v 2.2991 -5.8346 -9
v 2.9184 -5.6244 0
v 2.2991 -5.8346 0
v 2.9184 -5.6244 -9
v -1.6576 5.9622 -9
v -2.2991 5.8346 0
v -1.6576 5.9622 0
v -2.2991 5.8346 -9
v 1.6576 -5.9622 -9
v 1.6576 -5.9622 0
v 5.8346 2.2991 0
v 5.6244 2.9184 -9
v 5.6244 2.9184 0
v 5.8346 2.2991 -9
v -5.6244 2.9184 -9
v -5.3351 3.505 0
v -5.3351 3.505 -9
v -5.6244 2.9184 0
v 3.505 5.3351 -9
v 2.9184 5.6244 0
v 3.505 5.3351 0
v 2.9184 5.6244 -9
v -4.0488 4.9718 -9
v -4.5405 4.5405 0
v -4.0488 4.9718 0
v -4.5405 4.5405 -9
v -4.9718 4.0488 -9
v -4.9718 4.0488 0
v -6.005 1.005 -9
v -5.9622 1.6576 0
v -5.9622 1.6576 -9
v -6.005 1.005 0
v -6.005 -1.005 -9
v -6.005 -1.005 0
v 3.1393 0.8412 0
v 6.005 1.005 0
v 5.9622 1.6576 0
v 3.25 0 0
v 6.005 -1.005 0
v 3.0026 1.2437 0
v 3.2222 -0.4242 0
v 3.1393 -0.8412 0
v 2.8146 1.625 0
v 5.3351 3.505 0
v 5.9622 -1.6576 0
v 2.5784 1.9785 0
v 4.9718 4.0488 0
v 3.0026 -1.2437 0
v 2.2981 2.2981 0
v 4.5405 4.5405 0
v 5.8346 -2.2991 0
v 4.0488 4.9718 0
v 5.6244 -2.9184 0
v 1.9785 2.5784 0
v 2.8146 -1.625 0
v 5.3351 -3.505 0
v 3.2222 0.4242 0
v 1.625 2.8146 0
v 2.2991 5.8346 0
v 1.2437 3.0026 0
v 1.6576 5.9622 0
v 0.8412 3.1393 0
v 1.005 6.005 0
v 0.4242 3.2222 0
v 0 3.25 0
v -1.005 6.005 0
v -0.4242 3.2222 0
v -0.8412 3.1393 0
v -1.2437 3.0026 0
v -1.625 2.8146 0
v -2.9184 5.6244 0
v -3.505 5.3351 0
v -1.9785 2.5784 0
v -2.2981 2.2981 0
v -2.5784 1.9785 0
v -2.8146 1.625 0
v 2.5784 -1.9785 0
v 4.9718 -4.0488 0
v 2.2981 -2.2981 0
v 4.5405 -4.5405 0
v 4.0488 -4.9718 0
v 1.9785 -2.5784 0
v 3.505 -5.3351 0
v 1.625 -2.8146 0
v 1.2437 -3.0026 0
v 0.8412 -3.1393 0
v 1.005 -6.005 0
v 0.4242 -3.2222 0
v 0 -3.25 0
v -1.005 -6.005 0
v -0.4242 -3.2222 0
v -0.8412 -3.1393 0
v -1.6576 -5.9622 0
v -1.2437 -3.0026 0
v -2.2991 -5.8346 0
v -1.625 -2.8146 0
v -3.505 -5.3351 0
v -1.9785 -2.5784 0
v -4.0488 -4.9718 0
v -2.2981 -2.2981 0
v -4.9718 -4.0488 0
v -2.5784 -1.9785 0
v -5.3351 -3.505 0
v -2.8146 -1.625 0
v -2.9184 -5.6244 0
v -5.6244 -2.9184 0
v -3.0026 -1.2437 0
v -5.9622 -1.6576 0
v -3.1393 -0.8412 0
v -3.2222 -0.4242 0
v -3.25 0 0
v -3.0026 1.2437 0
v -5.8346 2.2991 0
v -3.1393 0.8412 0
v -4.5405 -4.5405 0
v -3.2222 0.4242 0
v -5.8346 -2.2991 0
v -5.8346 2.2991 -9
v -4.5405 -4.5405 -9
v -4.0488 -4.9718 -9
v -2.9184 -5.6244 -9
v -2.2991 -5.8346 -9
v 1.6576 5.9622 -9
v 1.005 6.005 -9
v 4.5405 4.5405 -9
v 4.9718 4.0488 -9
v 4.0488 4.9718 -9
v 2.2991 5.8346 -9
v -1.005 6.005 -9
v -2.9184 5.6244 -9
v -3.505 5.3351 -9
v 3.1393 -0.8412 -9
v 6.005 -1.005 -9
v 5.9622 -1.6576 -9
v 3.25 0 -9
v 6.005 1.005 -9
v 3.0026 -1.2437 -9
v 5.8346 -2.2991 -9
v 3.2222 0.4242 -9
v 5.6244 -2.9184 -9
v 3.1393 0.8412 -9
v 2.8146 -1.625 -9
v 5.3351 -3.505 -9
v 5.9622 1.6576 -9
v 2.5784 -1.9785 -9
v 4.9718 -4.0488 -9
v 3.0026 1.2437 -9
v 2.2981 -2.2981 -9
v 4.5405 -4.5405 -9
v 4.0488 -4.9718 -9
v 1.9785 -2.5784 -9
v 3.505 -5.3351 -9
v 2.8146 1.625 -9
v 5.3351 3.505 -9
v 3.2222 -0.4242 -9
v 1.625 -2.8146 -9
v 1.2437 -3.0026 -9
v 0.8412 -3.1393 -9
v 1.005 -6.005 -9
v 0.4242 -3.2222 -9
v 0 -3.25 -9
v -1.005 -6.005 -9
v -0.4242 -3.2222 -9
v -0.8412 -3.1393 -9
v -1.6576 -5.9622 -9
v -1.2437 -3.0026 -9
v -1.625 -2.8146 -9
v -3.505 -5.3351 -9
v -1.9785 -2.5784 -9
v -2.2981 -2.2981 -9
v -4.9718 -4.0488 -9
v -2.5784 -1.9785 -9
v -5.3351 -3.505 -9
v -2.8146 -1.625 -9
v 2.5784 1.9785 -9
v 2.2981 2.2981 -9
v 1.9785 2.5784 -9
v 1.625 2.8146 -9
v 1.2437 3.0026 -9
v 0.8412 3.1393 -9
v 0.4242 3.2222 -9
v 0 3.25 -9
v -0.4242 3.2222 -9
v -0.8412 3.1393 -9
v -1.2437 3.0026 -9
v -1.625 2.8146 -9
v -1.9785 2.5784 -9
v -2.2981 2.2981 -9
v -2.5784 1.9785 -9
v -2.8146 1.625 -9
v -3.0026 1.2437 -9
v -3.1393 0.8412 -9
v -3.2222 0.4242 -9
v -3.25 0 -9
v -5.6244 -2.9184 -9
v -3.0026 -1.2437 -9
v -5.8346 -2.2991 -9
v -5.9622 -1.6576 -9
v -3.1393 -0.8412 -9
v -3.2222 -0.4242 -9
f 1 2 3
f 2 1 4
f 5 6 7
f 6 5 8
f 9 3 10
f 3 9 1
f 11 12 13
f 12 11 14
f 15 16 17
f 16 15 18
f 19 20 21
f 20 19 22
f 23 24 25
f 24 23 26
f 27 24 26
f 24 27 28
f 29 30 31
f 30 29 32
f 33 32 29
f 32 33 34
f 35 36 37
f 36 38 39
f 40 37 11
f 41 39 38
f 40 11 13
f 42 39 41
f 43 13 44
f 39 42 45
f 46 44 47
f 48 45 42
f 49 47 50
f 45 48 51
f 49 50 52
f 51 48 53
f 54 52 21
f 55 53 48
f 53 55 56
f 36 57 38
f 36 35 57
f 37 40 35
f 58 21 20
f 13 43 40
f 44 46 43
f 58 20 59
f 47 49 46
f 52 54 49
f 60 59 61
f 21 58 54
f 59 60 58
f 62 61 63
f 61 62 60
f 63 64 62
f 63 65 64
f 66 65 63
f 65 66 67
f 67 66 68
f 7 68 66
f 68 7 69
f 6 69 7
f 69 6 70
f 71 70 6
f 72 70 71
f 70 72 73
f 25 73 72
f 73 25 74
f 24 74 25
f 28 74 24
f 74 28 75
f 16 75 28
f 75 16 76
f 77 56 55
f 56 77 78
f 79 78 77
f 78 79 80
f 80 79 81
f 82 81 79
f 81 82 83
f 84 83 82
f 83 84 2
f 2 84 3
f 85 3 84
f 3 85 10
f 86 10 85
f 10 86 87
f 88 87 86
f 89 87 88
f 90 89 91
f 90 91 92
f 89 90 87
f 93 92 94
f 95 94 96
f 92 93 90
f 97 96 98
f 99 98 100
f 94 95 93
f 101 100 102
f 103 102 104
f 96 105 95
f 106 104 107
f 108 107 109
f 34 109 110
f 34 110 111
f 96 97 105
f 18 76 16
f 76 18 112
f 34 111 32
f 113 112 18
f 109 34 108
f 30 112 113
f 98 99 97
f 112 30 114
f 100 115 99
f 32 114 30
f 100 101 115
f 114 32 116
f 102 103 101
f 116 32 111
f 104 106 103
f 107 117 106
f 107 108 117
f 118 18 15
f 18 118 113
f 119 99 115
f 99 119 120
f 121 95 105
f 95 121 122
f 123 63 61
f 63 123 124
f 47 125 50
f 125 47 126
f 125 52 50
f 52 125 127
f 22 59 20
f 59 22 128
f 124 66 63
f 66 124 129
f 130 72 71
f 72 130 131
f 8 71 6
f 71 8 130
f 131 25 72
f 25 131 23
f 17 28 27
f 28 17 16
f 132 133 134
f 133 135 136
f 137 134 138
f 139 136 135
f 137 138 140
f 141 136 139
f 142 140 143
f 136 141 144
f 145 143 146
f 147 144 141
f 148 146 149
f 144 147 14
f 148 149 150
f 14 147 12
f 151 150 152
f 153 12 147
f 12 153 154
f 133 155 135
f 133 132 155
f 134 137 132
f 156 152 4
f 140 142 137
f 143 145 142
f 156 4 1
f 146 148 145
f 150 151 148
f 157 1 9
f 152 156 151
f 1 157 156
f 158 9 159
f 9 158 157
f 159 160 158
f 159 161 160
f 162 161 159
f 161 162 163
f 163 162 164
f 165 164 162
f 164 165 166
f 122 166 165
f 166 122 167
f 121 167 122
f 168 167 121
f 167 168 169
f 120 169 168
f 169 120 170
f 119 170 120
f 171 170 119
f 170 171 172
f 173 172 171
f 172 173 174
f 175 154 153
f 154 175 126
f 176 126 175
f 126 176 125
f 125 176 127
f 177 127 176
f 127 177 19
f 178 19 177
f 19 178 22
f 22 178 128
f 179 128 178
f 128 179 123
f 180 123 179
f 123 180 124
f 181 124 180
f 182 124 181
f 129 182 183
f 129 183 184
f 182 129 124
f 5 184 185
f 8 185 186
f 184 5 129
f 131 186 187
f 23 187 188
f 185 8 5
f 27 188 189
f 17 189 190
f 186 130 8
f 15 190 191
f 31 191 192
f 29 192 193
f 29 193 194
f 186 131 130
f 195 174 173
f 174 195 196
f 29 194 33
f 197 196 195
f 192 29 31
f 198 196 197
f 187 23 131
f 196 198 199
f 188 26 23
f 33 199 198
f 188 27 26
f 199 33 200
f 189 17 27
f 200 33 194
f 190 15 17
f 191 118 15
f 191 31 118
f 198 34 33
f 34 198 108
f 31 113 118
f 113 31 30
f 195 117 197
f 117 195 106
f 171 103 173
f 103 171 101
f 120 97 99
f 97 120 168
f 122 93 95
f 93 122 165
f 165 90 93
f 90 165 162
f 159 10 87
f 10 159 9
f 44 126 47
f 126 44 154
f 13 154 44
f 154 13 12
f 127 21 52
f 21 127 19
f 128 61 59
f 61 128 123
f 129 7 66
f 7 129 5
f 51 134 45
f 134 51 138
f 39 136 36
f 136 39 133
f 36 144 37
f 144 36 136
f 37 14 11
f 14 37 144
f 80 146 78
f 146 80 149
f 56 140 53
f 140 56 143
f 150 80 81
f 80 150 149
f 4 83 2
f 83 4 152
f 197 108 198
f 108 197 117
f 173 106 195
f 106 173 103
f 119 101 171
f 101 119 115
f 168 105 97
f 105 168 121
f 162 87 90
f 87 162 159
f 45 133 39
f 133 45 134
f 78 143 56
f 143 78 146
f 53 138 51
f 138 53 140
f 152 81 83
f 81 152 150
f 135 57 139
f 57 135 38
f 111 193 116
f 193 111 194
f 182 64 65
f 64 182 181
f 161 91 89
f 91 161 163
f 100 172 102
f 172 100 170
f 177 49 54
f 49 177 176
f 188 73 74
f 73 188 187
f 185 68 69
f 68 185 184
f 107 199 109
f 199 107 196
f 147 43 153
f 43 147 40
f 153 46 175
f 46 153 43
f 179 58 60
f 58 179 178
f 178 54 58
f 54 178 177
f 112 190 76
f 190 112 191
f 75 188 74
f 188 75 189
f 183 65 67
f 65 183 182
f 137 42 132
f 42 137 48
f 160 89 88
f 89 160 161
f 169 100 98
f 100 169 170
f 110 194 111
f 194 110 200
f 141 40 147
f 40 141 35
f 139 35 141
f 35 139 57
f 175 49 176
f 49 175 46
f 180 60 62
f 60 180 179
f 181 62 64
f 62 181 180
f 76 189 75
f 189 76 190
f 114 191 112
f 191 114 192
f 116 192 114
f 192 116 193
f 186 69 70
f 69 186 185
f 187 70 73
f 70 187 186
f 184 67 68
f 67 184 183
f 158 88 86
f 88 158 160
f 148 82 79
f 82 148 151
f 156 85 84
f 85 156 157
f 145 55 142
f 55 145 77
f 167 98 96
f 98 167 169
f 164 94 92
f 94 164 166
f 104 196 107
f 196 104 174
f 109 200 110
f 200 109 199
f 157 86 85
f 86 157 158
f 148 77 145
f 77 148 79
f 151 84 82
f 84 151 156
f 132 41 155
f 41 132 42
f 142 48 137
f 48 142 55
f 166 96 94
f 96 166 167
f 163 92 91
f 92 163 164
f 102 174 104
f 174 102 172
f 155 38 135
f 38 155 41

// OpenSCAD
// Generated by SolidPython 1.1.3 on 2022-09-15 16:37:11
$fn = 48;


difference() {
	union() {
		translate(v = [0, 0, 0]) {
			difference() {
				union() {
					color(alpha = 1.0000000000, c = "Gold") {
						translate(v = [0, 0, 0]) {
							rotate(a = [0, 0, 0]) {
								translate(v = [0, 0, -9]) {
									linear_extrude(height = 9) {
										offset(r = 5) {
											square(center = true, size = [2.0100000000, 2.0100000000]);
										}
									}
								}
							}
						}
					}
				}
				union() {
					color(alpha = 1.0000000000, c = "Gold") {
						translate(v = [0.0000000000, 0.0000000000, 0]) {
							rotate(a = [0, 0, 0]) {
								translate(v = [0, 0, -250]) {
									cylinder(h = 500, r = 3.2500000000);
								}
							}
						}
					}
				}
			}
		}
	}
	union();
}
/***********************************************
*********      SolidPython code:      **********
************************************************
 
import subprocess

from solid.objects import *
from solid import scad_render_to_file, scad_render

import math

import os

##################################################################################################################################################
##################################################################################################################################################
##################################################################################################################################################
##################################################################################################################################################
######  DIMENSION STUFF
##################################################################################################################################################
##################################################################################################################################################
##################################################################################################################################################
##################################################################################################################################################


mode = "3DPR"
#mode = "LAZE"
#mode = "TURE"
#mode = ""


######  Countersunk
countersunkM = []
WIDTH = 0
DEPTH = 1
countersunkM1width = 0; countersunkM1depth = 0; countersunkM2width = 0; countersunkM2depth = 0
countersunkM3width = 0
countersunkM3depth = 0
countersunkM4width = 0
countersunkM4depth = 0
countersunkM5width = 0
countersunkM5depth = 0
countersunkM6width = 0
countersunkM6depth = 0

######  Holes
holeM = []
holeM1 = 0
holeM2 = 0
holeM3 = 0
holeM4 = 0
holeM5 = 0
holeM6 = 0

######  Nuts
nutM = []
NUTWIDTH = 0
NUTDEPTH = 1
nutM1width = 0
nutM1depth = 0
nutM2width = 0
nutM2depth = 0
nutM3width = 0
nutM3depth = 0
nutM4width = 0
nutM4depth = 0
nutM5width = 0
nutM5depth = 0
nutM6width = 0
nutM6depth = 0

######  OOEB
ooebPinWidth = 0
ooebPinWidthWide = 0


######  Colors
colDefault = "Gold"

colOOEBbase = colDefault

colLEDRed = "red"
colWire = "gray"
    ######  Resistor
colRes = list()
colResistor = "beige"

colResBlack = "black"
colRes.append(colResBlack)
colResBrown = "brown"
colRes.append(colResBrown)
colResRed = "red"
colRes.append(colResRed)
colResOrange = "orange"
colRes.append(colResOrange)
colResYellow = "yellow"
colRes.append(colResYellow)
colResGreen = "green"
colRes.append(colResGreen)
colResBlue = "blue"
colRes.append(colResBlue)
colResPurple = "purple"
colRes.append(colResPurple)
colResGray = "gray"
colRes.append(colResGray)
colResWhite = "white"
colRes.append(colResWhite)





def changeMode(m="3DPR"):
    #print("####################################################      CHANGING MODES TO: " + m)
    global mode
    mode = m
    ######  Countersunk
    global countersunkM, countersunkM1width, countersunkM1depth, countersunkM2width, countersunkM2depth, countersunkM3width, countersunkM3depth, countersunkM4width, countersunkM4depth, countersunkM5width, countersunkM5depth, countersunkM6width, countersunkM6depth
    countersunkM = []
    countersunkM.append([0,0])
    countersunkM1width = 0 if mode== "3DPR" else 0
    countersunkM1depth = 0 if mode== "3DPR" else 0
    countersunkM.append([countersunkM1width,countersunkM1depth])
    countersunkM2width = 0 if mode== "3DPR" else 0
    countersunkM2depth = 0 if mode== "3DPR" else 0
    countersunkM.append([countersunkM2width,countersunkM2depth])
    countersunkM3width = 5.5/2+0.6 if mode== "3DPR" else 5.5/2
    countersunkM3depth = 1.7 if mode== "3DPR" else 1.7
    countersunkM.append([countersunkM3width,countersunkM3depth])
    countersunkM4width = 0 if mode== "3DPR" else 0
    countersunkM4depth = 0 if mode== "3DPR" else 0
    countersunkM.append([countersunkM4width,countersunkM4depth])
    countersunkM5width = 0 if mode== "3DPR" else 0
    countersunkM5depth = 0 if mode== "3DPR" else 0
    countersunkM.append([countersunkM5width,countersunkM5depth])
    countersunkM6width = 0 if mode== "3DPR" else 0
    countersunkM6depth = 0 if mode== "3DPR" else 0
    countersunkM.append([countersunkM6width,countersunkM6depth])
    ######  Holes
    global holeM, holeM1, holeM2, holeM3, holeM4, holeM5, holeM6, holeM7, holeM8
    holeM = []
    holeM1 = 1.2/2 if mode== "3DPR" else 1/2
    holeM2 = 2.3/2 if mode== "3DPR" else 2/2
    holeM3 = 3.4/2 if mode== "3DPR" else 3/2
    holeM4 = 4.4/2 if mode== "3DPR" else 4/2
    holeM5 = 5.4/2 if mode== "3DPR" else 5/2
    holeM6 = 6.5/2 if mode== "3DPR" else 6/2
    holeM7 = 7.5/2 if mode== "3DPR" else 7/2
    holeM8 = 8.6/2 if mode== "3DPR" else 8/2
    holeM.append(0)
    holeM.append(holeM1)
    holeM.append(holeM2)
    holeM.append(holeM3)
    holeM.append(holeM4)
    holeM.append(holeM5)
    holeM.append(holeM6)
    holeM.append(holeM7)
    holeM.append(holeM8)
    #####  Nuts
    global nutM, nutM1width, nutM1depth, nutM2width, nutM2depth, nutM3width, nutM3depth, nutM4width, nutM4depth, nutM5width, nutM5depth, nutM6width, nutM6depth
    nutM = []
    nutM.append([0,0]) 
    #M1 Nut
    nutM1width = 0
    nutM1depth = 0
    nutM.append([nutM1width,nutM1depth])    
    #M2 Nut
    nutM2width = 0
    nutM2depth = 0
    nutM.append([nutM2width,nutM2depth])    
    #M3 Nut
    #nutM3width = 6.05 if mode== "3DPR" else 5.5
    nutM3width = 6.05 * 1.154 if mode== "3DPR" else 5.5 * 1.154
    nutM3depth = 2.5 if mode== "3DPR" else 2.5
    nutM.append([nutM3width,nutM3depth])    
    #M4 Nut
    nutM4width = 0
    nutM4depth = 0
    nutM.append([nutM4width,nutM4depth])    
    #M5 Nut
    nutM5width = 0
    nutM5depth = 0
    nutM.append([nutM5width,nutM5depth])    
    #M6 Nut
    nutM6width = 11 if mode== "3DPR" else 10
    nutM6depth = 5 if mode== "3DPR" else 5
    nutM.append([nutM6width,nutM6depth])    

    ######  OOEB
    global ooebPinWidth,  ooebPinWidthWide

    ooebPinWidth = 0.6
    if(mode=="3DPR" or mode=="LAZE"):
        ooebPinWidth = 0.6 + 0.6
    ooebPinWidthWide = 1.2
    if(mode=="3DPR" or mode=="LAZE"):
        ooebPinWidthWide = 1.2 + 0.6


changeMode()


""""    
holeM12D = s=="3DPR" ? 1.4/2 : 1.2/2;
holeM16D = s=="3DPR" ? 1.8/2 : 1.6/2;
holeM2 = s=="3DPR" ? 2.3/2 : 2/2;
holeM25D = s=="3DPR" ? 2.8/2 : 2.5/2;
holeM27D = s=="3DPR" ? 3.1/2 : 2.7/2;    
holeM3 = s=="3DPR" ? 3.4/2 : 3/2;
holeM35D = s=="3DPR" ? 3.9/2 : 35/2;
holeM4 = s=="3DPR" ? 4.4/2 : 4/2;
holeM5 = s=="3DPR" ? 5.4/2 : 5/2;
holeM6 = s=="3DPR" ? 6.5/2 : 6/2;
holeM6Minus = s=="3DPR" ? 5.8/2 : 5.9/2;
holeM7 = s=="3DPR" ? 7.5/2 : 7/2;
holeM8 = s=="3DPR" ? 8.6/2 : 8/2;
holeM9 = s=="3DPR" ? 9.6/2 : 9/2;
holeM10 = s=="3DPR" ? 10.6/2 : 10/2;
holeM11 = s=="3DPR" ? 11.6/2 : 11/2;
holeM12 = s=="3DPR" ? 12.6/2 : 12/2;
holeM13 = s=="3DPR" ? 13.6/2 : 13/2;
holeM14 = s=="3DPR" ? 14.6/2 : 14/2;
holeM15 = s=="3DPR" ? 15.6/2 : 15/2;
holeM16 = s=="3DPR" ? 16.6/2 : 16/2;
holeM17 = s=="3DPR" ? 17.6/2 : 17/2;
holeM18 = s=="3DPR" ? 18.6/2 : 18/2;
holeM19 = s=="3DPR" ? 19.6/2 : 19/2;
holeM20 = s=="3DPR" ? 20.6/2 : 20/2;
"""

##################################################################################################################################################
##################################################################################################################################################
##################################################################################################################################################
##################################################################################################################################################
######  REGULAR STUFF
##################################################################################################################################################
##################################################################################################################################################
##################################################################################################################################################
##################################################################################################################################################


def setMode(mode="3DPR"):
    changeMode(mode)

def getMode():
    return mode



def saveToScad(fileName, parts):
    dir =  os.path.dirname(os.path.abspath(fileName))
    Path(dir).mkdir(parents=True, exist_ok=True)
    file_out = scad_render_to_file(parts, fileName, file_header=f'$fn = 48;')


def saveToDxf(fileIn, fileOut=""):
    if fileOut == "":
        fileOut = fileIn.replace(".scad",".dxf")
    saveToFile(fileIn, fileOut)
    
def saveToPng(fileIn, fileOut="",extra="--render"):
    if fileOut == "":
        fileOut = fileIn.replace(".scad",".png")
    saveToFile(fileIn, fileOut)

def saveToStl(fileIn, fileOut=""):
    if fileOut == "":
        fileOut = fileIn.replace(".scad",".stl")
    saveToFile(fileIn, fileOut)
    
def saveToSvg(fileIn, fileOut=""):
    if fileOut == "":
        fileOut = fileIn.replace(".scad",".svg")
    saveToFile(fileIn, fileOut)

def saveToFile(fileIn, fileOut,extra=""):
    extra = extra + " --colorscheme Tomorrow"

    launchStr = 'openscad -o "' + fileOut + '"' + extra + ' "' + fileIn + '"'
    if ".png" in fileOut:
        launchStr = launchStr + " --render"
    print("            saveToFile launch string: " + launchStr)
    subprocess.run(launchStr)
    x=0



def insert(item,pos=[None,None,None],x=0,y=0,z=0,ex=0,size=[None,None,None],length=0,rot=[None,None,None],rotX=0,rotY=0,rotZ=0,width=0,height=0,depth=100,rad=0,rad2=0,color=colDefault,alpha=1,OOwidth=0,OOheight=0,holes=True,negative=True, name="",m=""):
    return OPSCInsert(item,pos,x,y,z,ex,size,length,rot,rotX,rotY,rotZ,width,height,depth,rad,rad2,color,alpha,OOwidth,OOheight,holes,negative,name,m=m)


def OPSCInsert(item,pos=[None,None,None],x=0,y=0,z=0,ex=0,size=[None,None,None],length=0,rot=[None,None,None],rotX=0,rotY=0,rotZ=0,width=0,height=0,depth=100,rad=0,rad2=0,col=colDefault,alpha=1,OOwidth=0,OOheight=0,holes=True,negative=True, name="",m=""):
    
    """
        color(color,alpha){
            translate([x,y,z]){
                    rotate([rotX,rotY,rotZ]){
    """
    returnValue = ""

    #print(pos)

    if pos[0] != None:
        x=pos[0]
        y=pos[1]
        z=pos[2]
    if rot[0] != None:
        rotX=rot[0]
        rotY=rot[1]
        rotZ=rot[2]
    
    returnValue = color(col)(translate((x,y,z))(
                            rotate((rotX,rotY,rotZ))(
                                OPSCInsertIf(item,pos,x,y,z,ex,size,length,rot,rotX,rotY,rotZ,width,height,depth,rad,rad2,col,alpha,OOwidth,OOheight,holes,negative,name,m=m)
                            )
                        ))
                
    

    return returnValue

def OPSCInsertIf(item,pos=[None,None,None],x=0,y=0,z=0,ex=0,size=[None,None,None],length=0,rot=[None,None,None],rotX=0,rotY=0,rotZ=0,width=0,height=0,depth=100,rad=0,rad2=0,color=colDefault,alpha=1,OOwidth=0,OOheight=0,holes=True,negative=True, name="",m=""):
    returnValue = cube([10,10,10])

    if size[0] != None:
        width=size[0]
        height=size[1]
        depth=size[2]

    #print("    OPSCInsert item:" + str(item) + " at:[" + str(x) + "," + str(y) + "," + str(z) + "] size: [" + str(width) + "," + str(height) + "," + str(depth) + "]")

    if(item=="cube"):
        returnValue =  translate([0,0,-depth/2])(cube([width,height,depth],center=True).set_modifier(m))
    elif(item=="cylinder"):        
        returnValue = translate([0,0,-depth/2])(cylinder(r=rad,h=depth,center=True).set_modifier(m))
    elif(item=="sphere"):        
        returnValue = translate([0,0,-rad])(sphere(r=rad).set_modifier(m))
    elif(item=="plane"):
        if depth == 100:
            returnValue = insert("cube",size=[1000,1000,0.1],color=color).set_modifier(m)            
        else:
            returnValue = insert("cube",size=[1000,1000,depth],color=color).set_modifier(m)                        
    elif(item=="cubeRounded"):
        if(rad == 0):
                            rad = 5
        returnValue =  translate([0,0,-depth])(
                        linear_extrude(height=depth)(                        
                            offset(r=rad)(
                                square((width-rad*2+.01,height-rad*2+.01),center=True).set_modifier(m)
                                )
                            )
        )
    ######  Countersunk
    elif(item == "countersunkM1" or item == "csM1" ):
        returnValue = OSPCgetCountersunk(rad=1,m=m)
    elif(item == "countersunkM2" or item == "csM2" ):
        returnValue = OSPCgetCountersunk(rad=2,m=m)
    elif(item == "countersunkM3" or item == "csM3" ):
        returnValue = OSPCgetCountersunk(rad=3,m=m)
    elif(item == "countersunkM4" or item == "csM4" ):
        returnValue = OSPCgetCountersunk(rad=4,m=m)
    elif(item == "countersunkM5" or item == "csM5" ):
        returnValue = OSPCgetCountersunk(rad=5,m=m)
    elif(item == "countersunkM6" or item == "csM6" ):
        returnValue = OSPCgetCountersunk(rad=6,m=m)
    elif(item == "countersunk" or item == "cs"):
        returnValue = OSPCgetCountersunk(rad=rad,m=m)


    ######  Holes    
    elif(item == "holeM1"):
        returnValue = OSPCgetHole(rad=1,m=m)
    elif(item == "holeM2"):
        returnValue = OSPCgetHole(rad=2,m=m)
    elif(item == "holeM3"):
        returnValue = OSPCgetHole(rad=3,m=m)
    elif(item == "holeM4"):
        returnValue = OSPCgetHole(rad=4,m=m)
    elif(item == "holeM5"):
        returnValue = OSPCgetHole(rad=5,m=m)
    elif(item == "holeM6"):
        returnValue = OSPCgetHole(rad=6,m=m)
    elif(item == "holeM7"):
        returnValue = OSPCgetHole(rad=7,m=m)
    elif(item == "holeM8"):
        returnValue = OSPCgetHole(rad=8,m=m)
    elif(item == "hole"):
        returnValue = OSPCgetHole(rad=rad,m=m)

    ######  Nuts
    elif(item == "nutM1"):
        returnValue = OSPCgetNut(rad=1,depth=depth,m=m)
    elif(item == "nutM2"):
        returnValue = OSPCgetNut(rad=2,depth=depth,m=m)
    elif(item == "nutM3"):
        returnValue = OSPCgetNut(rad=3,depth=depth,m=m)
    elif(item == "nutM4"):
        returnValue = OSPCgetNut(rad=4,depth=depth,m=m)
    elif(item == "nutM5"):
        returnValue = OSPCgetNut(rad=5,depth=depth,m=m)
    elif(item == "nutM6"):
        returnValue = OSPCgetNut(rad=6,depth=depth,m=m)
    elif(item == "nut"):
        returnValue = OSPCgetNut(rad=rad,depth=depth,m=m)
    return returnValue

                

def OSPCgetHole(rad,m=""):
    return translate([0,0,-250])(cylinder(r=holeM[rad],h=500).set_modifier(m))

def OSPCgetNut(rad,depth,m=""):
    depth = nutM[rad][NUTDEPTH] if depth==100 else depth
    returnValue = OPSChexagon(nutM[rad][NUTWIDTH],depth=depth,m=m)
    return returnValue

def OSPCgetCountersunk(rad,m=""):
    depth=countersunkM[rad][DEPTH]
    returnValue = translate([0,0,-depth])(cylinder(h=depth,r2=countersunkM[rad][WIDTH],r1=holeM[rad])).set_modifier(m)
    return returnValue

def OPSChexagon(width,depth,m=""):
    angles = []
    for a in range(0,6):
        angles.append((a*360/6)+30)
    points = []
    for angle in angles:
        x = math.cos((math.pi/180)*angle)*(width/2)
        y = math.sin((math.pi/180)*angle)*(width/2)
        points.append([x,y])

        rv = polygon(points)
        rv = linear_extrude(height=depth)(rv)
        rv = translate([0,0,-depth])(rv)
        rv = rv.set_modifier(m)

    return rv

def OPSChexagonOld(width,depth,m=""):
    cutter = item()
    wid=width*2
    cutter.addPos(insert("cube",pos=[wid/2+width/2,0,0],size=[wid,wid,depth]))
    cutter.addPos(insert("cube",pos=[-wid/2-width/2,0,0],size=[wid,wid,depth]))

    cut = cutter.getPart()
    #print(depth)
    returnValue = difference()(
        translate([0,0,-depth/2])(cube([wid,wid,depth],center=True)),
        cut,
        rotate([0,0,60])(cut),
        rotate([0,0,-60])(cut)
    ).set_modifier(m)

    return returnValue

class item:

    def __init__(self):
        self.posItems=list()
        self.negItems=list()

    def isEmpty(self):        
        testString = scad_render(self.getPart())
        #print("test String length: " + str(len(testString)))
        returnValue = False
        if len(testString) == 270:            
            returnValue = True
        return returnValue

    def addPos(self,part):
        self.posItems.append(part)
    def addNeg(self,part):
        self.negItems.append(part)

    def getPart(self):
        returnValue = difference()(
            union()(self.posItems),
            union()(self.negItems)
        )
        return returnValue

    def getLaser(self,start=0,layers=1,thickness=-3,tileDif=200):
        rv= []

        for x in range(layers):
            rv.append(translate([0,x*tileDif,0])(
                    projection()(
                        intersection()(
                            insert("plane",z=start+x*thickness),
                            self.getPart()
                        )
                    )
            )
            )
        return union()(rv)

    def getSplit(self,start=0,depth=6,tileDif=200):
        rv= []

        rv.append(translate([0,0,0])(
            intersection()(
                insert("cube",size=[100,100,depth],z=start),
                self.getPart()
            )
        )
        )

        rv.append(translate([0,0,depth])(rotate([180,0,0])(translate([0,tileDif,depth])(
            intersection()(
                insert("cube",size=[100,100,depth],z=start-depth),
                self.getPart()
            )
        )
        )
        )
        )        
        return union()(rv)


 
 
************************************************/
